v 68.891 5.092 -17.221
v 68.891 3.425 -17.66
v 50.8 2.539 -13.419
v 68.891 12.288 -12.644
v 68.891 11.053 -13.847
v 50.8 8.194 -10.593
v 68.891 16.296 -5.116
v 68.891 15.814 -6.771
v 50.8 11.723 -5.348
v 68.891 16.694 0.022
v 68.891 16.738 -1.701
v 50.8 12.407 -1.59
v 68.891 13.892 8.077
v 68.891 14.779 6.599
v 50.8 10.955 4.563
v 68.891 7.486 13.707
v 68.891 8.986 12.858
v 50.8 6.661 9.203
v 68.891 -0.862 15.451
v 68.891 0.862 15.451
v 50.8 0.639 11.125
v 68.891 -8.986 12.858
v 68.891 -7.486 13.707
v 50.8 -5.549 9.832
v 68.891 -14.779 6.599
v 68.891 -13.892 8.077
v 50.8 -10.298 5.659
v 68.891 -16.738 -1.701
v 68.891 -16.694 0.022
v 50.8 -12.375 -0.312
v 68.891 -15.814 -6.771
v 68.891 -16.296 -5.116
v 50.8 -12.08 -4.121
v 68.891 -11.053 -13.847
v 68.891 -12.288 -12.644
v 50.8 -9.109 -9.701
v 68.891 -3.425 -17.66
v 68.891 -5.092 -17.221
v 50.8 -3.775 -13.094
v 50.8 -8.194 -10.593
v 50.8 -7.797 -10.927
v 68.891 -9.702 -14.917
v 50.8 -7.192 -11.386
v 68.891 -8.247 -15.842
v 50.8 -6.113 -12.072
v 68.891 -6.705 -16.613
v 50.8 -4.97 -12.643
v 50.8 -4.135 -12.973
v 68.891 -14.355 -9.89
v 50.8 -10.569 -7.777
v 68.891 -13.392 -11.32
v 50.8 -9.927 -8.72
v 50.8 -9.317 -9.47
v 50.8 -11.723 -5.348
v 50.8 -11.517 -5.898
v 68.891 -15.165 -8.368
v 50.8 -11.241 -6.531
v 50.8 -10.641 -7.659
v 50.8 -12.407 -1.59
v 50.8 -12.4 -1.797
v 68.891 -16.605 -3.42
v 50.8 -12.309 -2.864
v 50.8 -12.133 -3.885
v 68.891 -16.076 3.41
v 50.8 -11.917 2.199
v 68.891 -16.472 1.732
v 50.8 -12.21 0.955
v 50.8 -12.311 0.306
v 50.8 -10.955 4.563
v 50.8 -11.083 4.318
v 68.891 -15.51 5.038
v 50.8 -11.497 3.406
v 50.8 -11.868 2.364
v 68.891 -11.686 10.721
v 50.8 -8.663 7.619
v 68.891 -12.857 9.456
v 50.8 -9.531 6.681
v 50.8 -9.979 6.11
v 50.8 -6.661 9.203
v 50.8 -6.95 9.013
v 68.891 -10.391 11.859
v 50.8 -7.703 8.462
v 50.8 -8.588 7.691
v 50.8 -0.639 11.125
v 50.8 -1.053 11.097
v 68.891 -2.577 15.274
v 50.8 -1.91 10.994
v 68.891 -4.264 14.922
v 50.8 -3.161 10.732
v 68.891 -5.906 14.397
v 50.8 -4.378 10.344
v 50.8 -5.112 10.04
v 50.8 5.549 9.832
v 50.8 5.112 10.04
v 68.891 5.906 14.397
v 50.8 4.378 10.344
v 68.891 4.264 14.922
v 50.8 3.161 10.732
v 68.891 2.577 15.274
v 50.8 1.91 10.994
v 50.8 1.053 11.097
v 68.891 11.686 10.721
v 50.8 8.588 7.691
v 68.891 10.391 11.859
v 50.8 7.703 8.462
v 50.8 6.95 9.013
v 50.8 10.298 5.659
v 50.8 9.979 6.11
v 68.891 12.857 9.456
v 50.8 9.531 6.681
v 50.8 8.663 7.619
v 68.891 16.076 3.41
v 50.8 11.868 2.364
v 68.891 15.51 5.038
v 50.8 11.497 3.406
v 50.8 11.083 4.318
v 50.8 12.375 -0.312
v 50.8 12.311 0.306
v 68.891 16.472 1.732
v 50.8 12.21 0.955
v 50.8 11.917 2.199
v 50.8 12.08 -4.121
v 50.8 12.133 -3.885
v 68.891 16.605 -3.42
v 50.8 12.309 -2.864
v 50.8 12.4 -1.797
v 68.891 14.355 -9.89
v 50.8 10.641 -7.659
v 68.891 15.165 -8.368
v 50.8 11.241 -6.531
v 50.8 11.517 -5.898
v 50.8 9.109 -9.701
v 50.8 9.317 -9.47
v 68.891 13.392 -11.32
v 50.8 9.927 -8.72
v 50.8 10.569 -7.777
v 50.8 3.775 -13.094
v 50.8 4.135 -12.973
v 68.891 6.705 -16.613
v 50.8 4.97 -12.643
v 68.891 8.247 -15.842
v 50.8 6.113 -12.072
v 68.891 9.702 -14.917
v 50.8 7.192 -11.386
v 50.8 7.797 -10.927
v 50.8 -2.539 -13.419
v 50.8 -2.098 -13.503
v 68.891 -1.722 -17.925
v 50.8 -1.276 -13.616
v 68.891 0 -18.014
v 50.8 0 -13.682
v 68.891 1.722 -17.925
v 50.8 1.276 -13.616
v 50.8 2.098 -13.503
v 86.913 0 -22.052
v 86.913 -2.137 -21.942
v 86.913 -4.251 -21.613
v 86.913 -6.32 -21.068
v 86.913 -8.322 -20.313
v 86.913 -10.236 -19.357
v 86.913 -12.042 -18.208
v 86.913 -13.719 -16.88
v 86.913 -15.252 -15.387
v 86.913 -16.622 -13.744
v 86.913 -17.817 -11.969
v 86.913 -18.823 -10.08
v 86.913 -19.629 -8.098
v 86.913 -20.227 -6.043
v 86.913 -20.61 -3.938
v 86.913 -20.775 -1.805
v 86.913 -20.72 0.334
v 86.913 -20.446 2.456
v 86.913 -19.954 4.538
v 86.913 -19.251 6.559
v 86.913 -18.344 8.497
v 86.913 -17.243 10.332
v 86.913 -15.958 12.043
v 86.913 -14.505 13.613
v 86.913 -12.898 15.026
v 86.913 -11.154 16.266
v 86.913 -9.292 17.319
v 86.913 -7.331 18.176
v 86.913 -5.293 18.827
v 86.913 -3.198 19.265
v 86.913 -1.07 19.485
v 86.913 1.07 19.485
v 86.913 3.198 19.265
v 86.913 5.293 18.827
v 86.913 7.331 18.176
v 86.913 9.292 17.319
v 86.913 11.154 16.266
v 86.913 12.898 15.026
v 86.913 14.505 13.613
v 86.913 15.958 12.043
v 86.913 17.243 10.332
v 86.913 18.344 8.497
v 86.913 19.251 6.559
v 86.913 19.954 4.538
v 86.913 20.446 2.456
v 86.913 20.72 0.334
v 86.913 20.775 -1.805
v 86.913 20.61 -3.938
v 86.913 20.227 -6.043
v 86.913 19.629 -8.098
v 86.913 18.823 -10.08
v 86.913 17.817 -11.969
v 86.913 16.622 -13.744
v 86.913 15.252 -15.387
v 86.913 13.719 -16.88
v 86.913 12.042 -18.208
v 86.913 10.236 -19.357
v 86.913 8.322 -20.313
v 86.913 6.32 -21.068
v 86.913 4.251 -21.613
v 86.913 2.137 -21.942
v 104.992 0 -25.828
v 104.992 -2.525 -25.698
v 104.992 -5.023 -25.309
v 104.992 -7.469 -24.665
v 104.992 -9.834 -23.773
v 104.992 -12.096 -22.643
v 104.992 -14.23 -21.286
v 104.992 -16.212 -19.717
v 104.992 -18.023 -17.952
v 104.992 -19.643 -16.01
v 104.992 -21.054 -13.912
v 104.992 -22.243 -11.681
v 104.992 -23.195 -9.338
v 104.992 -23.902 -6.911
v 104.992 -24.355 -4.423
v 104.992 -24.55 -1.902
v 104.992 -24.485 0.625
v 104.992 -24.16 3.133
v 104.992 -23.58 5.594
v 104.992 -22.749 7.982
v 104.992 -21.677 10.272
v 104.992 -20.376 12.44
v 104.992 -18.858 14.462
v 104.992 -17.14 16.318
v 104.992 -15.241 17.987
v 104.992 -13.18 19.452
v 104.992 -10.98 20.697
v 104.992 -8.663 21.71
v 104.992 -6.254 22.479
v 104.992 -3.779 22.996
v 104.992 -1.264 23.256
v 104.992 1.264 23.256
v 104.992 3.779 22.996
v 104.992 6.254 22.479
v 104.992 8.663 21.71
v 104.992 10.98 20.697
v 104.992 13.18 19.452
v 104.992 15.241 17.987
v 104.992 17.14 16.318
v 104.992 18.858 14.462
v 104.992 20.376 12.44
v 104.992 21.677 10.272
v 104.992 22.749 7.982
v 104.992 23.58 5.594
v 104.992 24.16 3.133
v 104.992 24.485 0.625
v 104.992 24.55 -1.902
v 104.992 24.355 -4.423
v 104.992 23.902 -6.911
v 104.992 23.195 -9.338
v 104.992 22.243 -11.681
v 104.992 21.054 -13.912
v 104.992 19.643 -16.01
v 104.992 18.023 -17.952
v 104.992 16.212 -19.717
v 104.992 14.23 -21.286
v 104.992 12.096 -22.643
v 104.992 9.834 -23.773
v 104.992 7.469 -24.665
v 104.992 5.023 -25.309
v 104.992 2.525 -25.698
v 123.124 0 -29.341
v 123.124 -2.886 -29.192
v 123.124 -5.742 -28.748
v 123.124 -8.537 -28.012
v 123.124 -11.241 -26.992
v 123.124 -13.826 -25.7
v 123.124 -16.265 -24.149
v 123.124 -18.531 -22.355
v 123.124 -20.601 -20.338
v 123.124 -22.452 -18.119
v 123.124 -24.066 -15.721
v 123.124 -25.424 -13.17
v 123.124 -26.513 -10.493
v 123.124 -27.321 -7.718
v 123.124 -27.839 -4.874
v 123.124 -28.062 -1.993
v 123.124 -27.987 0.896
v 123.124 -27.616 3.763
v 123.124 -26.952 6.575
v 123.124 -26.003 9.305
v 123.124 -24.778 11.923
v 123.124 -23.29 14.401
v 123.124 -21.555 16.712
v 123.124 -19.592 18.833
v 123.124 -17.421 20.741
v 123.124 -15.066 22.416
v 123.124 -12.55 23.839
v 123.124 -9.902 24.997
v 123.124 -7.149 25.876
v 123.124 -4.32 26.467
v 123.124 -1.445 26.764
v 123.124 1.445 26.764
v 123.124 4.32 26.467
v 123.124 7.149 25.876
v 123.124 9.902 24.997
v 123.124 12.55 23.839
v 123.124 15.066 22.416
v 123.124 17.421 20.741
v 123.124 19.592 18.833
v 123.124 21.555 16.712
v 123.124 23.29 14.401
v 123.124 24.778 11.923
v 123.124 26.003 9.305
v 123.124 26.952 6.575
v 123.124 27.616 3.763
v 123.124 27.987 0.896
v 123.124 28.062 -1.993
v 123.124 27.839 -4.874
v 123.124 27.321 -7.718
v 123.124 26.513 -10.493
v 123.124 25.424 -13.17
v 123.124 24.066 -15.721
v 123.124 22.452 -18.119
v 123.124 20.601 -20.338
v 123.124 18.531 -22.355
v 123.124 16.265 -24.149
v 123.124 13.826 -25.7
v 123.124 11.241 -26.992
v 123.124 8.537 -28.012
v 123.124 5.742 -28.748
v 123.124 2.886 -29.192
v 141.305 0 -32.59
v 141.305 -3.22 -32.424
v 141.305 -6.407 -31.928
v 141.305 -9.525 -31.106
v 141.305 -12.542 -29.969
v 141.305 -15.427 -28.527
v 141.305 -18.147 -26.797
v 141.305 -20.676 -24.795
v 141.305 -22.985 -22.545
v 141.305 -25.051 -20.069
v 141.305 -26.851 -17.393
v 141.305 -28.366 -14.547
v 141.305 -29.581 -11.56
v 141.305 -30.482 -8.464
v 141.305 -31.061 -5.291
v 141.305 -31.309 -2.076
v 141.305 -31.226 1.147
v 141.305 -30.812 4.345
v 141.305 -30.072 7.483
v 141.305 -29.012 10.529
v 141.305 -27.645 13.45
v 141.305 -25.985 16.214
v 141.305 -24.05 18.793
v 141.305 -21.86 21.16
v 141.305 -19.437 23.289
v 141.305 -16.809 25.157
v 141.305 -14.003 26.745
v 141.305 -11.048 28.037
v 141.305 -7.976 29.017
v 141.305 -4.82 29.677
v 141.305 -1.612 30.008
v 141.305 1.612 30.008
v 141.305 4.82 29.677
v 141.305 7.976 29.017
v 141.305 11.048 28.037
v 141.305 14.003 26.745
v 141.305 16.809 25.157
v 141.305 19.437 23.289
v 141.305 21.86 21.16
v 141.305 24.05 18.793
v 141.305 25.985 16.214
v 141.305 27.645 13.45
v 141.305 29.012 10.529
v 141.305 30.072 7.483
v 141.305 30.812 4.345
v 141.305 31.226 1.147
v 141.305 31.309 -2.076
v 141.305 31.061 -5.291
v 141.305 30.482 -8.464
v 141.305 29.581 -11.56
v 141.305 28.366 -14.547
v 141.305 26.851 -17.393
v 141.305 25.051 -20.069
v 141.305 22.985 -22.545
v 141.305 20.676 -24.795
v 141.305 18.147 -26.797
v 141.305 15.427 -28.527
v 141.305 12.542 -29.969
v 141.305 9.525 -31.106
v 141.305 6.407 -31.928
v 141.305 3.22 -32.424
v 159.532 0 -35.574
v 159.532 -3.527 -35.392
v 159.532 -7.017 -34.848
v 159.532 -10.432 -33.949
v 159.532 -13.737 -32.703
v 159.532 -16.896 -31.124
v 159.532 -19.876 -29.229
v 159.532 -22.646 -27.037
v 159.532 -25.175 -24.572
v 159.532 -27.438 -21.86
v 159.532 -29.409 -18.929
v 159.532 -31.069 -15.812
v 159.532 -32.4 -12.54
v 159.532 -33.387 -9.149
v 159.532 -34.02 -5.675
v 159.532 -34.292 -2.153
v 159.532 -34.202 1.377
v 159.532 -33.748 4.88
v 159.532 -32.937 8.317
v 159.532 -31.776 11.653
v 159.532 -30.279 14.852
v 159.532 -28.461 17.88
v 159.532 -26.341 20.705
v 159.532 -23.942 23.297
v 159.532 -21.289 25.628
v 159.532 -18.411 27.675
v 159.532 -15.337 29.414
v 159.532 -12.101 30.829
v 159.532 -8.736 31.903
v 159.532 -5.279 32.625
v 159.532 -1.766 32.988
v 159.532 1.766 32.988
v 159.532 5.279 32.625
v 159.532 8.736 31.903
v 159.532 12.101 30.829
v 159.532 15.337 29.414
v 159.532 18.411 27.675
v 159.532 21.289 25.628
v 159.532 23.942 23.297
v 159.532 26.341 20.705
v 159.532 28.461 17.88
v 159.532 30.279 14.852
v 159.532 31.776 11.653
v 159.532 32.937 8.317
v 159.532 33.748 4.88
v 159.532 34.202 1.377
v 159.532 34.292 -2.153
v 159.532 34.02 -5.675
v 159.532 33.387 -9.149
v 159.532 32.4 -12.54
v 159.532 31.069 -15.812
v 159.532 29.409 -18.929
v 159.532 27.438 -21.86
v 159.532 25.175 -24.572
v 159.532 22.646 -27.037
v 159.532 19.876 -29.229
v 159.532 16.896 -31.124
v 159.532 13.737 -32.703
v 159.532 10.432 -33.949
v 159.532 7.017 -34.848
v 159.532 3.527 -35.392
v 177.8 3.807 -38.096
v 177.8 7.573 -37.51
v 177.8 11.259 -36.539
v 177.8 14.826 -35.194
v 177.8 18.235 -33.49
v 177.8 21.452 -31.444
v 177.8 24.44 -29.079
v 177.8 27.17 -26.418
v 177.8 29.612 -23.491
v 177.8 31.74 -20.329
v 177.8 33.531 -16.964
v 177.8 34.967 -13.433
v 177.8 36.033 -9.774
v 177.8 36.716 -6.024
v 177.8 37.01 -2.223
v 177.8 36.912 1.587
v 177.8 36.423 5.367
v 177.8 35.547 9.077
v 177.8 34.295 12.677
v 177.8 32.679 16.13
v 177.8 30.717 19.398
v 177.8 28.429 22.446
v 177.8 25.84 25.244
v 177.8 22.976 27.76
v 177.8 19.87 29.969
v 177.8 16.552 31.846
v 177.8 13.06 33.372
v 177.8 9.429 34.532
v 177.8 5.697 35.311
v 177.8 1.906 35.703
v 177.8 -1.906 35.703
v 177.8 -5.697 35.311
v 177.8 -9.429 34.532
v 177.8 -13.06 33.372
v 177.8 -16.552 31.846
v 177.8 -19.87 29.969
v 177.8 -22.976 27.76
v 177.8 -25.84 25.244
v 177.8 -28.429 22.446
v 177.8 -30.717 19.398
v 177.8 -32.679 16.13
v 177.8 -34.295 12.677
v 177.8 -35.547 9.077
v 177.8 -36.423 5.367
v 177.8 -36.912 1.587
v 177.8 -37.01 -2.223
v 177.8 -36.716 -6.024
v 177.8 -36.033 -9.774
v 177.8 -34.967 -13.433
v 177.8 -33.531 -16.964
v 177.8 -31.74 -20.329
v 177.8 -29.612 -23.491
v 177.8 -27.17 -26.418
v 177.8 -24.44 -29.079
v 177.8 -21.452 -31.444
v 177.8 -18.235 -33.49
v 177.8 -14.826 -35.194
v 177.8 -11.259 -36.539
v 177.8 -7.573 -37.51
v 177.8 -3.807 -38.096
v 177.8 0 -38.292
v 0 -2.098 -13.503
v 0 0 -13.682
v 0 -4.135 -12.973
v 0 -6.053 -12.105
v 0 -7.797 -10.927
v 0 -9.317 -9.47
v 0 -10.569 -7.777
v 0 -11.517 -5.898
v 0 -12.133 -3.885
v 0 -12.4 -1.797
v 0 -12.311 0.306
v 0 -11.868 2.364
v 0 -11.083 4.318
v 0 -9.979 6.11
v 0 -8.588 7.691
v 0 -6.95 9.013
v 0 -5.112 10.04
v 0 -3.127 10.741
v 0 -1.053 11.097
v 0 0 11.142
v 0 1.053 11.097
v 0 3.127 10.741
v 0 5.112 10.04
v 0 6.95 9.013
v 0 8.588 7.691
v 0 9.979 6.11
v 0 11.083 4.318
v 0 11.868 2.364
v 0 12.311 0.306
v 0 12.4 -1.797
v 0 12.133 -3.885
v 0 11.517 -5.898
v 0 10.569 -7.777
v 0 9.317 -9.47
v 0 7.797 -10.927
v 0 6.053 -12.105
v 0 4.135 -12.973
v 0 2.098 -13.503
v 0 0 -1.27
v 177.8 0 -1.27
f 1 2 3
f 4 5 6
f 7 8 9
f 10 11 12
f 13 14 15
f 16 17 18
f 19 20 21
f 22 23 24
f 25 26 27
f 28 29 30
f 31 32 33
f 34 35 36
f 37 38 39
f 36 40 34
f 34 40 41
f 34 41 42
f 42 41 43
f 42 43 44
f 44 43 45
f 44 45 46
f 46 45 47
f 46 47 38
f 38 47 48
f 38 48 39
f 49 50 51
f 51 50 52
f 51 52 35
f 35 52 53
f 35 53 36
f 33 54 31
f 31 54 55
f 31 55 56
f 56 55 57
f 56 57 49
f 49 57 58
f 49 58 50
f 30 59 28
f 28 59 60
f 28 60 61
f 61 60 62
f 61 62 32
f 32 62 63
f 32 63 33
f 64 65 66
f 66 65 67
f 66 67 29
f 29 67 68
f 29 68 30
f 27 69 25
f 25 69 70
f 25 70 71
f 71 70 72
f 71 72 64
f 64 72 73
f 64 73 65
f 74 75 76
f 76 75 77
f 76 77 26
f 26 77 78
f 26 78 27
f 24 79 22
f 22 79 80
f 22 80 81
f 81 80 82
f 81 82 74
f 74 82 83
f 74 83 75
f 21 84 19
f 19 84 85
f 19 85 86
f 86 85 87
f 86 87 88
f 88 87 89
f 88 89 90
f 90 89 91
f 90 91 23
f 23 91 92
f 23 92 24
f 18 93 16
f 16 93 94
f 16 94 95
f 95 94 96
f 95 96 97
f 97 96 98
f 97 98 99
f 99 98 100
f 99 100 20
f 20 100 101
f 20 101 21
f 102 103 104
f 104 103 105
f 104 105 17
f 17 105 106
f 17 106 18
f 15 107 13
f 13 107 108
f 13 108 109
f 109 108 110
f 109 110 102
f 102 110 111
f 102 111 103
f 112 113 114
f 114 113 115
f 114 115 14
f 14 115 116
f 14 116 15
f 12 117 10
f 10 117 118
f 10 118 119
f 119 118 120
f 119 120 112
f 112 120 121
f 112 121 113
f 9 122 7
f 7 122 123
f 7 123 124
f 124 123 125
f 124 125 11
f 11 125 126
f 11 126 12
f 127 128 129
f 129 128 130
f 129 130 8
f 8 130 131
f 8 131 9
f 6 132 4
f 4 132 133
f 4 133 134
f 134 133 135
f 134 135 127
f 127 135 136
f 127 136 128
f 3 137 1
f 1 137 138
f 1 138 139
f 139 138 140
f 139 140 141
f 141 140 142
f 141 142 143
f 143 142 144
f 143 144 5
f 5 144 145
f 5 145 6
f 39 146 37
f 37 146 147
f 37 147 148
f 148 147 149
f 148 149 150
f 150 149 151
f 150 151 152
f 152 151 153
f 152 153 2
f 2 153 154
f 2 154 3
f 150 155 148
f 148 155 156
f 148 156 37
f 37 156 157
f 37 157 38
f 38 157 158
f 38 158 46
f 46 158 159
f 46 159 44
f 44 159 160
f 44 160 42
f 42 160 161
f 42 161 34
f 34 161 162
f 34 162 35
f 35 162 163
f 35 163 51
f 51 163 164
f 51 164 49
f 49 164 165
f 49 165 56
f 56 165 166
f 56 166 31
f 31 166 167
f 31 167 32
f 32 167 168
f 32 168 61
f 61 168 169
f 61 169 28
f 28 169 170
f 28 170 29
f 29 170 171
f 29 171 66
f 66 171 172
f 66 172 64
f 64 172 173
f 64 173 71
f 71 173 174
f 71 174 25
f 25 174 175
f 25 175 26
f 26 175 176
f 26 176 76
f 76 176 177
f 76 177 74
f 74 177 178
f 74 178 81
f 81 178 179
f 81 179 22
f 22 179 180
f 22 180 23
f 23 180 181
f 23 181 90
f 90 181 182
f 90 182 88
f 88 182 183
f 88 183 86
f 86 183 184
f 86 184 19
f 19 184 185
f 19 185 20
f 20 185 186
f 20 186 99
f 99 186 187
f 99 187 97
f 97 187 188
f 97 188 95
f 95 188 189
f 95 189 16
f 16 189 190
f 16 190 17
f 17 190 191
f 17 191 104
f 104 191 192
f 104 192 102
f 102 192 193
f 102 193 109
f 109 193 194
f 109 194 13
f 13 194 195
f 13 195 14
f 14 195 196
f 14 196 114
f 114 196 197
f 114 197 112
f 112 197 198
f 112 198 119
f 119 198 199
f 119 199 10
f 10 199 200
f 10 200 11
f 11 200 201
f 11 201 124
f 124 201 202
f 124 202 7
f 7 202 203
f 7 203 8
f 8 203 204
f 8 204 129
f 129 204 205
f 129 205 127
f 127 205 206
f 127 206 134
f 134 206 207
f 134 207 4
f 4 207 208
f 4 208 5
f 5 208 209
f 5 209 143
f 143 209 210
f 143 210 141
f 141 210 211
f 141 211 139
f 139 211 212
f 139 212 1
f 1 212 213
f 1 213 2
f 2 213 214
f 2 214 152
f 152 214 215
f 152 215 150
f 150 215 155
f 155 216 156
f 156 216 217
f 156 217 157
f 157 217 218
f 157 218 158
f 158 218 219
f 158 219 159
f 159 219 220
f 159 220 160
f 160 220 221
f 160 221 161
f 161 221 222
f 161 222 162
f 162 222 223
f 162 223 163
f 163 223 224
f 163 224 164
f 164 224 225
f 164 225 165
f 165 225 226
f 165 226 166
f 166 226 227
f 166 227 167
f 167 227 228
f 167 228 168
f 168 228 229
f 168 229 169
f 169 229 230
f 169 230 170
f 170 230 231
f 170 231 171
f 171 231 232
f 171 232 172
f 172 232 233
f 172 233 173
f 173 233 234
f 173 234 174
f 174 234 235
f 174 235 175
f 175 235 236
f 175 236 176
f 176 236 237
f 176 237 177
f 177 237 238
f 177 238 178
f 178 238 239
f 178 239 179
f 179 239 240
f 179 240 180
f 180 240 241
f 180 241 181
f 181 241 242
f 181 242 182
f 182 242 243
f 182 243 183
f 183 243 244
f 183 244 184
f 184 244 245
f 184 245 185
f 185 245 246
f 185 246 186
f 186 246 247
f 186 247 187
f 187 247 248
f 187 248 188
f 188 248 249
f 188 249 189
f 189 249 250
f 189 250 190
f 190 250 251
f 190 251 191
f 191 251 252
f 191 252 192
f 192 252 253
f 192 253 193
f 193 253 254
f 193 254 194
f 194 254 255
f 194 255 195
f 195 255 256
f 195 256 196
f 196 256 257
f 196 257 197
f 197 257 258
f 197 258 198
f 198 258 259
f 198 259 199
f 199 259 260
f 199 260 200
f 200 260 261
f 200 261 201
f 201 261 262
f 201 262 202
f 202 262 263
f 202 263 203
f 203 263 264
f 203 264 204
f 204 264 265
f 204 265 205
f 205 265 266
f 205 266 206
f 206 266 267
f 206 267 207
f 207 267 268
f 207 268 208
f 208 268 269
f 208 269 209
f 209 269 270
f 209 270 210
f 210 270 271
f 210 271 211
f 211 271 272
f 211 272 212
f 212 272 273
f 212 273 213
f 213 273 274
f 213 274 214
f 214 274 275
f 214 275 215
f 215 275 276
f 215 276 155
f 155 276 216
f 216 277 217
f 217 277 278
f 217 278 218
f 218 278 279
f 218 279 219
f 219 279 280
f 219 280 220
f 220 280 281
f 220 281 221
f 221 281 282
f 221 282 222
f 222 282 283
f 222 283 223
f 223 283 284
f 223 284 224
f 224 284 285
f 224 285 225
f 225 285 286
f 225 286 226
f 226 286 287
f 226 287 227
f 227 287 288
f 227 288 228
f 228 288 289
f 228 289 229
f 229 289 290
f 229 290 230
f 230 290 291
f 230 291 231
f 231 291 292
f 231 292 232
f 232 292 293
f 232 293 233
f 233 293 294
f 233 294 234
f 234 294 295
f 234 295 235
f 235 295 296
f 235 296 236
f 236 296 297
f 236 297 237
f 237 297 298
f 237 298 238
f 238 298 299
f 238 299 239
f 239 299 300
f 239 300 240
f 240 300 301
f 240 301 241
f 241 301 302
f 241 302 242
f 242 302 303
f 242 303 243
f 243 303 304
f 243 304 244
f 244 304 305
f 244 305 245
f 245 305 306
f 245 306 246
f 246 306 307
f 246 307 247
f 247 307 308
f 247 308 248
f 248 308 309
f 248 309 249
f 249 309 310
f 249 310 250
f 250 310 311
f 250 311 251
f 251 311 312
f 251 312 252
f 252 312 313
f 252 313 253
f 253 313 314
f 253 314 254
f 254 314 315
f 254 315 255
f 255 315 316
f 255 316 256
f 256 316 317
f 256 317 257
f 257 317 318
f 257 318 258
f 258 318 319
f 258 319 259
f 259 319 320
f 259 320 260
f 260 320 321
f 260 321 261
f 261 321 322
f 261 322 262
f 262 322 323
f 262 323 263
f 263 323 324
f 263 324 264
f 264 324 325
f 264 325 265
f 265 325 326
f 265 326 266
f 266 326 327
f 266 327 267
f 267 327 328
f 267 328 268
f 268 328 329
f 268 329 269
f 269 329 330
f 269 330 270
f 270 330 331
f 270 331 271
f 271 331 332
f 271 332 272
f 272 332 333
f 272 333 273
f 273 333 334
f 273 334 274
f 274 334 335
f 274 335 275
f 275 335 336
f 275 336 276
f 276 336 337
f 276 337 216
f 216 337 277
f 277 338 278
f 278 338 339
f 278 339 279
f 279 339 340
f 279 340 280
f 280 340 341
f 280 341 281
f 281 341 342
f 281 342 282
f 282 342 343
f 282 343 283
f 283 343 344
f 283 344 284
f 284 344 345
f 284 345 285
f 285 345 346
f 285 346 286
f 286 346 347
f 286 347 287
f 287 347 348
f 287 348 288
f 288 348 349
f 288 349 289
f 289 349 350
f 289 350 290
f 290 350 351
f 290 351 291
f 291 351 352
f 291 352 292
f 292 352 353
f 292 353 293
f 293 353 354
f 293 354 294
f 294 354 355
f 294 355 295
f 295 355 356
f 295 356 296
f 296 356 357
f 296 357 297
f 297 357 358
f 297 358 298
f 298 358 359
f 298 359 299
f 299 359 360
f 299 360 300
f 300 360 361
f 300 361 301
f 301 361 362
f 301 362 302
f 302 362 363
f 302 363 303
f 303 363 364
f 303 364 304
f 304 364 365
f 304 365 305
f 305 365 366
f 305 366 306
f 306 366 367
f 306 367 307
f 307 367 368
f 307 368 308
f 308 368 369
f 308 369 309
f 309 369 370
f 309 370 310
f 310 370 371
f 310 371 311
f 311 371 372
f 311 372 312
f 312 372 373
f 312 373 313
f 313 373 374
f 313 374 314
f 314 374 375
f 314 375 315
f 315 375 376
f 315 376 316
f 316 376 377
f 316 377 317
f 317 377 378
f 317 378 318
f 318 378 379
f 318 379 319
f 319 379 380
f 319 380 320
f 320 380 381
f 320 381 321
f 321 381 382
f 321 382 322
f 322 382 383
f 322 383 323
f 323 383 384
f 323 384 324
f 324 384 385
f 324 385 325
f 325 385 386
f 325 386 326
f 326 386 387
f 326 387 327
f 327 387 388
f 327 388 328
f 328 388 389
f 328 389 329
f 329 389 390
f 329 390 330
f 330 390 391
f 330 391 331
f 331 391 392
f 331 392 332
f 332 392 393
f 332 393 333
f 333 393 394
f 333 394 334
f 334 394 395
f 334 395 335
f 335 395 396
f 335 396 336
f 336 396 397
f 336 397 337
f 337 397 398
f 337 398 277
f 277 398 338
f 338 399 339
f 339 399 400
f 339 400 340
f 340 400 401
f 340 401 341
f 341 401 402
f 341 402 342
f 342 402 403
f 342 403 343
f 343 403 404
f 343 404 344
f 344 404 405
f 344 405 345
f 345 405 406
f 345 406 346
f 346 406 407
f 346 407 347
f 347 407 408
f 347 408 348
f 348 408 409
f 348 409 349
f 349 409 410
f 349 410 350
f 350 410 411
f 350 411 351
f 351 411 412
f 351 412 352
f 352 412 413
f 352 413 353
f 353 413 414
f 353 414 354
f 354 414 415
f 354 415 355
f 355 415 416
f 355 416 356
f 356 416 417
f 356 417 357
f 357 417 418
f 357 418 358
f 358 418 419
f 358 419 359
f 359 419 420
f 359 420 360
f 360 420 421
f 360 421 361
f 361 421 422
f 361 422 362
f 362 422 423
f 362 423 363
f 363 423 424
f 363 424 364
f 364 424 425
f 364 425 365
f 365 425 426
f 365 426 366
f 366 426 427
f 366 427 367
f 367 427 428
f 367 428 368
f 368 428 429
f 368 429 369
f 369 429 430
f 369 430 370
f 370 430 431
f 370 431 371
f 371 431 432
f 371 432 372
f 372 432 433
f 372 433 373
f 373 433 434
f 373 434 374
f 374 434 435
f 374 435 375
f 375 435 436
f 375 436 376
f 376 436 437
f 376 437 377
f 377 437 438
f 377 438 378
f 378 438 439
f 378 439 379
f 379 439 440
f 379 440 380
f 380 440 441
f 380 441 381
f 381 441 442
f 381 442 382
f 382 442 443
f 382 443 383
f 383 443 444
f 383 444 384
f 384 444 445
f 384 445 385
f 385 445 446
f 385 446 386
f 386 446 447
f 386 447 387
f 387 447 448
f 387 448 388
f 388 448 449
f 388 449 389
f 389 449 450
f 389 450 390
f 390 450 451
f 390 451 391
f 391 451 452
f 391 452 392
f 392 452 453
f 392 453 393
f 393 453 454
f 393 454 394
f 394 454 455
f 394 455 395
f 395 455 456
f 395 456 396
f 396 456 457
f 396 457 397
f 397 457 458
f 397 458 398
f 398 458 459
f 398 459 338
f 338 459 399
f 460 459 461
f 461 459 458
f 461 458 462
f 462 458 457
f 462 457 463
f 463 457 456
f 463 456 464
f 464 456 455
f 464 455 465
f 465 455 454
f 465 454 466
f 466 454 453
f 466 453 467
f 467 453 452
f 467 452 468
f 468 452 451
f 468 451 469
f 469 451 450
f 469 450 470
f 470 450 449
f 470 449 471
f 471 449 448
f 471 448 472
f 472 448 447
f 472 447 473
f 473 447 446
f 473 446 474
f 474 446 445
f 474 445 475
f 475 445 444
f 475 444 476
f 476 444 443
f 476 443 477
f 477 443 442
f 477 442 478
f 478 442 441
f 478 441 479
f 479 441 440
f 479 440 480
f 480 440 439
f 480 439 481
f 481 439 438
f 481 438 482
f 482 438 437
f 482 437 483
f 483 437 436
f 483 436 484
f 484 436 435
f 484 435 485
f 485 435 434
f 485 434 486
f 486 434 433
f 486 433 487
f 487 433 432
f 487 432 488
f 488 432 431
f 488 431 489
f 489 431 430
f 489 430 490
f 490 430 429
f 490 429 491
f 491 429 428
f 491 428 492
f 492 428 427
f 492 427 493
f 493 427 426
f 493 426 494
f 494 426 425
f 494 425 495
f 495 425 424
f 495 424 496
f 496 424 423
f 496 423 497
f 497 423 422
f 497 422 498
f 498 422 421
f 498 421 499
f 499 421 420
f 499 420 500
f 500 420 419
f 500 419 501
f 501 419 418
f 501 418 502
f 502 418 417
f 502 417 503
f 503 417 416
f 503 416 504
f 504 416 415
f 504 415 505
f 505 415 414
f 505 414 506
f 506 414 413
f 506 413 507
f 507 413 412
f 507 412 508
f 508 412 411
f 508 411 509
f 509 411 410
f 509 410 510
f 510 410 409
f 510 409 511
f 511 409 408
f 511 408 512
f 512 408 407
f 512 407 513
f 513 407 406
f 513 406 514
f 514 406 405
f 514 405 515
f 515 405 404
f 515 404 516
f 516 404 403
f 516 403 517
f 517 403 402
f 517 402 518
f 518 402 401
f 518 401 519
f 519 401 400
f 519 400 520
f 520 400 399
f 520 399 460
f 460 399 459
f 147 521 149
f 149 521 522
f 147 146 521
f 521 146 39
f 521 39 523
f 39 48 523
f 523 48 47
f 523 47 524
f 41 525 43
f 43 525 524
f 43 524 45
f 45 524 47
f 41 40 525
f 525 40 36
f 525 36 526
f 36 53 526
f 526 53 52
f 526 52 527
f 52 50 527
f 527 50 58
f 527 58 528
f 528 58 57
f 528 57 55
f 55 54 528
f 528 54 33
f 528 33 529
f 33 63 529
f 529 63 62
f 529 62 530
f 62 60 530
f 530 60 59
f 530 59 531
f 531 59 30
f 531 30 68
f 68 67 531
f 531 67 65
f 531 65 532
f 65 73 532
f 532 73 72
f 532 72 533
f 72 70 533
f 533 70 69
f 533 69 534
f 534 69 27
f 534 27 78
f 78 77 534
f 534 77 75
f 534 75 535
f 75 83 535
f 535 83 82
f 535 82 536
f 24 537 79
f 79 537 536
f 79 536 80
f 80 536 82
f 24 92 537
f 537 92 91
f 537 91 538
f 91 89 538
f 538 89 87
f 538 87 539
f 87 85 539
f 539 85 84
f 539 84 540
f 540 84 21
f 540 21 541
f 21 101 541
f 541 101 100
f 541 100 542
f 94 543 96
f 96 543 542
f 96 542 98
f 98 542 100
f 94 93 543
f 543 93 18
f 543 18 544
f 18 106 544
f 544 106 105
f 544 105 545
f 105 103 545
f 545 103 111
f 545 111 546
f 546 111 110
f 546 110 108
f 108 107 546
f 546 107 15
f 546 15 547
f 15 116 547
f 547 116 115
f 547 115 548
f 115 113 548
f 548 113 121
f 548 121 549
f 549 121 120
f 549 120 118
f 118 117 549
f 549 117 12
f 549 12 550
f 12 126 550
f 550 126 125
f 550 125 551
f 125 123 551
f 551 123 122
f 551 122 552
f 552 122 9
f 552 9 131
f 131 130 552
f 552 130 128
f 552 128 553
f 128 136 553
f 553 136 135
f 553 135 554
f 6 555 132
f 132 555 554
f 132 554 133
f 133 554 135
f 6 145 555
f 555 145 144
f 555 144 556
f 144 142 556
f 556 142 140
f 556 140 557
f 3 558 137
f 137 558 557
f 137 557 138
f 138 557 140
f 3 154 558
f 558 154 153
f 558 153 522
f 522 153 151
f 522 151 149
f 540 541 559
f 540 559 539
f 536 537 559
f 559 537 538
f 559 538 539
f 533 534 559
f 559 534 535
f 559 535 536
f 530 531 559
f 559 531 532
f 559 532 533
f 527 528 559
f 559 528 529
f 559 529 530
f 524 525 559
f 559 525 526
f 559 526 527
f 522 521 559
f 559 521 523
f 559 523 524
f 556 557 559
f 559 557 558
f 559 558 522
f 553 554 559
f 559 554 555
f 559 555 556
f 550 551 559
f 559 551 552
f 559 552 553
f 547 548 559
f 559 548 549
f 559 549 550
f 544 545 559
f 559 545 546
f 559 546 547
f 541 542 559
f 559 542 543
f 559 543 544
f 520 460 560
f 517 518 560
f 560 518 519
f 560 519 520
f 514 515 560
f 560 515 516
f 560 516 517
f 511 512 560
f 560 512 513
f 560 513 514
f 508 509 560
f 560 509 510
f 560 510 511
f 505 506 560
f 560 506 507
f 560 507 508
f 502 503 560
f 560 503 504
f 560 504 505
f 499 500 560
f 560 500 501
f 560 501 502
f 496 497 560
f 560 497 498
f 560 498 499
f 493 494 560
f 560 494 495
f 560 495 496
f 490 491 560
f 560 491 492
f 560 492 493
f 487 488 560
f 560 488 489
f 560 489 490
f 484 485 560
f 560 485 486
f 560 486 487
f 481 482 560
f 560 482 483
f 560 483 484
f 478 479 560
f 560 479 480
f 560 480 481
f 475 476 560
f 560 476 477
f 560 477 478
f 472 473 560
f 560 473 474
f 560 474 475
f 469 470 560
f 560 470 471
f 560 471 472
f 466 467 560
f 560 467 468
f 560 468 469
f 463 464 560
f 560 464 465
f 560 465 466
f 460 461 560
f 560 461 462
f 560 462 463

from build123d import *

# Parameters (mm, degrees)
SKETCH2_R           = 49.53
BOSS_EXTRUDE1_DEPTH = 203.2
SKETCH3_R           = 12.411567775
BOSS_EXTRUDE2_DEPTH = 50.8
SKETCH4_R           = 49.53
CUT_EXTRUDE1_DEPTH  = 381
SKETCH5_R           = 49.53
CUT_EXTRUDE2_DEPTH  = 381


with BuildPart() as part:
    # Sketch1 → Revolve2 (revolve)
    with BuildSketch(Plane(origin=(0, 0, 0), x_dir=(1, 0, 0), z_dir=(0, 1, 0))):
        with BuildLine():
            Line((355.600000053, 50.799999973), (355.600000053, 1.269999973))
            Line((355.600000053, 1.269999973), (50.800000047, 1.269999973))
            Line((50.800000047, 1.269999973), (50.800000047, 13.68156774))
            add(Edge.make_bspline(
                [(50.800000047, 13.68156774), (51.224607869, 13.786541703), (52.079748124, 13.99736018), (53.901316113, 14.445024847), (55.90428978, 14.933081433), (57.918204029, 15.420277853), (59.969167456, 15.913068852), (62.005618607, 16.398707152), (64.04585603, 16.881716673), (66.619566178, 17.486536085), (69.727395203, 18.209576077), (73.370678613, 19.04644661), (77.55044141, 19.991710093), (82.779136229, 21.155661521), (97.433989811, 24.348822924), (119.485629173, 28.81699746), (168.00075752, 37.516041455), (219.035004801, 44.081341124), (262.822405655, 47.820230422), (299.206459448, 49.570692635), (308.841173655, 49.947366018), (315.265578413, 50.162354186), (319.548981494, 50.29122703), (323.832782669, 50.405645805), (328.116966628, 50.505609209), (332.401425999, 50.591116104), (336.139078075, 50.653092889), (339.329601827, 50.697064227), (341.973247658, 50.727612371), (344.069774299, 50.748376802), (346.163273231, 50.76568058), (348.272494467, 50.77952366), (350.344714481, 50.789906003), (352.405704949, 50.79682758), (354.282013928, 50.799423175), (355.162608625, 50.799999974), (355.600000053, 50.799999973)],
                knots=[0.08282658, 0.08282658, 0.08282658, 0.08282658, 0.08282658, 0.088510594, 0.094194608, 0.099878623, 0.105562637, 0.111246651, 0.116930666, 0.12261468, 0.128298694, 0.139917182, 0.15153567, 0.163154157, 0.174772645, 0.198009616, 0.314194483, 0.407142375, 0.709223026, 0.755696971, 0.790552431, 0.802170918, 0.813789405, 0.825407891, 0.837026378, 0.848644864, 0.860263351, 0.871881838, 0.877565852, 0.883249866, 0.88893388, 0.894617894, 0.900301908, 0.905985922, 0.911669936, 0.91735395, 0.91735395, 0.91735395, 0.91735395, 0.91735395], degree=4))
        make_face()
    revolve(axis=Axis((355.600000053, 0, -1.269999973), (-1, 0, 0)))

    # Sketch2 → Boss-Extrude1 (add)
    with BuildSketch(Plane(origin=(355.600000053, 0, 0), x_dir=(0, 0, -1), z_dir=(1, 0, 0))):
        with Locations((1.269999973, 0)):
            Circle(SKETCH2_R)
    extrude(amount=BOSS_EXTRUDE1_DEPTH)

    # Sketch3 → Boss-Extrude2 (add)
    with BuildSketch(Plane.ZY.offset(-50.800000063)):
        with Locations((-1.269999973, 0)):
            Circle(SKETCH3_R)
    extrude(amount=BOSS_EXTRUDE2_DEPTH)

    # Sketch4 → Cut-Extrude1 (cut)
    with BuildSketch(Plane(origin=(368.300000053, 0, 0), x_dir=(0, 0, -1), z_dir=(1, 0, 0))):
        with Locations((1.269999973, 0)):
            Circle(SKETCH4_R)
    extrude(amount=CUT_EXTRUDE1_DEPTH, mode=Mode.SUBTRACT)

    # Sketch5 → Cut-Extrude2 (cut)
    with BuildSketch(Plane(origin=(177.800000053, 0, 0), x_dir=(0, 0, -1), z_dir=(1, 0, 0))):
        with Locations((1.269999973, 0)):
            Circle(SKETCH5_R)
    extrude(amount=CUT_EXTRUDE2_DEPTH, mode=Mode.SUBTRACT)


solid = part.part
